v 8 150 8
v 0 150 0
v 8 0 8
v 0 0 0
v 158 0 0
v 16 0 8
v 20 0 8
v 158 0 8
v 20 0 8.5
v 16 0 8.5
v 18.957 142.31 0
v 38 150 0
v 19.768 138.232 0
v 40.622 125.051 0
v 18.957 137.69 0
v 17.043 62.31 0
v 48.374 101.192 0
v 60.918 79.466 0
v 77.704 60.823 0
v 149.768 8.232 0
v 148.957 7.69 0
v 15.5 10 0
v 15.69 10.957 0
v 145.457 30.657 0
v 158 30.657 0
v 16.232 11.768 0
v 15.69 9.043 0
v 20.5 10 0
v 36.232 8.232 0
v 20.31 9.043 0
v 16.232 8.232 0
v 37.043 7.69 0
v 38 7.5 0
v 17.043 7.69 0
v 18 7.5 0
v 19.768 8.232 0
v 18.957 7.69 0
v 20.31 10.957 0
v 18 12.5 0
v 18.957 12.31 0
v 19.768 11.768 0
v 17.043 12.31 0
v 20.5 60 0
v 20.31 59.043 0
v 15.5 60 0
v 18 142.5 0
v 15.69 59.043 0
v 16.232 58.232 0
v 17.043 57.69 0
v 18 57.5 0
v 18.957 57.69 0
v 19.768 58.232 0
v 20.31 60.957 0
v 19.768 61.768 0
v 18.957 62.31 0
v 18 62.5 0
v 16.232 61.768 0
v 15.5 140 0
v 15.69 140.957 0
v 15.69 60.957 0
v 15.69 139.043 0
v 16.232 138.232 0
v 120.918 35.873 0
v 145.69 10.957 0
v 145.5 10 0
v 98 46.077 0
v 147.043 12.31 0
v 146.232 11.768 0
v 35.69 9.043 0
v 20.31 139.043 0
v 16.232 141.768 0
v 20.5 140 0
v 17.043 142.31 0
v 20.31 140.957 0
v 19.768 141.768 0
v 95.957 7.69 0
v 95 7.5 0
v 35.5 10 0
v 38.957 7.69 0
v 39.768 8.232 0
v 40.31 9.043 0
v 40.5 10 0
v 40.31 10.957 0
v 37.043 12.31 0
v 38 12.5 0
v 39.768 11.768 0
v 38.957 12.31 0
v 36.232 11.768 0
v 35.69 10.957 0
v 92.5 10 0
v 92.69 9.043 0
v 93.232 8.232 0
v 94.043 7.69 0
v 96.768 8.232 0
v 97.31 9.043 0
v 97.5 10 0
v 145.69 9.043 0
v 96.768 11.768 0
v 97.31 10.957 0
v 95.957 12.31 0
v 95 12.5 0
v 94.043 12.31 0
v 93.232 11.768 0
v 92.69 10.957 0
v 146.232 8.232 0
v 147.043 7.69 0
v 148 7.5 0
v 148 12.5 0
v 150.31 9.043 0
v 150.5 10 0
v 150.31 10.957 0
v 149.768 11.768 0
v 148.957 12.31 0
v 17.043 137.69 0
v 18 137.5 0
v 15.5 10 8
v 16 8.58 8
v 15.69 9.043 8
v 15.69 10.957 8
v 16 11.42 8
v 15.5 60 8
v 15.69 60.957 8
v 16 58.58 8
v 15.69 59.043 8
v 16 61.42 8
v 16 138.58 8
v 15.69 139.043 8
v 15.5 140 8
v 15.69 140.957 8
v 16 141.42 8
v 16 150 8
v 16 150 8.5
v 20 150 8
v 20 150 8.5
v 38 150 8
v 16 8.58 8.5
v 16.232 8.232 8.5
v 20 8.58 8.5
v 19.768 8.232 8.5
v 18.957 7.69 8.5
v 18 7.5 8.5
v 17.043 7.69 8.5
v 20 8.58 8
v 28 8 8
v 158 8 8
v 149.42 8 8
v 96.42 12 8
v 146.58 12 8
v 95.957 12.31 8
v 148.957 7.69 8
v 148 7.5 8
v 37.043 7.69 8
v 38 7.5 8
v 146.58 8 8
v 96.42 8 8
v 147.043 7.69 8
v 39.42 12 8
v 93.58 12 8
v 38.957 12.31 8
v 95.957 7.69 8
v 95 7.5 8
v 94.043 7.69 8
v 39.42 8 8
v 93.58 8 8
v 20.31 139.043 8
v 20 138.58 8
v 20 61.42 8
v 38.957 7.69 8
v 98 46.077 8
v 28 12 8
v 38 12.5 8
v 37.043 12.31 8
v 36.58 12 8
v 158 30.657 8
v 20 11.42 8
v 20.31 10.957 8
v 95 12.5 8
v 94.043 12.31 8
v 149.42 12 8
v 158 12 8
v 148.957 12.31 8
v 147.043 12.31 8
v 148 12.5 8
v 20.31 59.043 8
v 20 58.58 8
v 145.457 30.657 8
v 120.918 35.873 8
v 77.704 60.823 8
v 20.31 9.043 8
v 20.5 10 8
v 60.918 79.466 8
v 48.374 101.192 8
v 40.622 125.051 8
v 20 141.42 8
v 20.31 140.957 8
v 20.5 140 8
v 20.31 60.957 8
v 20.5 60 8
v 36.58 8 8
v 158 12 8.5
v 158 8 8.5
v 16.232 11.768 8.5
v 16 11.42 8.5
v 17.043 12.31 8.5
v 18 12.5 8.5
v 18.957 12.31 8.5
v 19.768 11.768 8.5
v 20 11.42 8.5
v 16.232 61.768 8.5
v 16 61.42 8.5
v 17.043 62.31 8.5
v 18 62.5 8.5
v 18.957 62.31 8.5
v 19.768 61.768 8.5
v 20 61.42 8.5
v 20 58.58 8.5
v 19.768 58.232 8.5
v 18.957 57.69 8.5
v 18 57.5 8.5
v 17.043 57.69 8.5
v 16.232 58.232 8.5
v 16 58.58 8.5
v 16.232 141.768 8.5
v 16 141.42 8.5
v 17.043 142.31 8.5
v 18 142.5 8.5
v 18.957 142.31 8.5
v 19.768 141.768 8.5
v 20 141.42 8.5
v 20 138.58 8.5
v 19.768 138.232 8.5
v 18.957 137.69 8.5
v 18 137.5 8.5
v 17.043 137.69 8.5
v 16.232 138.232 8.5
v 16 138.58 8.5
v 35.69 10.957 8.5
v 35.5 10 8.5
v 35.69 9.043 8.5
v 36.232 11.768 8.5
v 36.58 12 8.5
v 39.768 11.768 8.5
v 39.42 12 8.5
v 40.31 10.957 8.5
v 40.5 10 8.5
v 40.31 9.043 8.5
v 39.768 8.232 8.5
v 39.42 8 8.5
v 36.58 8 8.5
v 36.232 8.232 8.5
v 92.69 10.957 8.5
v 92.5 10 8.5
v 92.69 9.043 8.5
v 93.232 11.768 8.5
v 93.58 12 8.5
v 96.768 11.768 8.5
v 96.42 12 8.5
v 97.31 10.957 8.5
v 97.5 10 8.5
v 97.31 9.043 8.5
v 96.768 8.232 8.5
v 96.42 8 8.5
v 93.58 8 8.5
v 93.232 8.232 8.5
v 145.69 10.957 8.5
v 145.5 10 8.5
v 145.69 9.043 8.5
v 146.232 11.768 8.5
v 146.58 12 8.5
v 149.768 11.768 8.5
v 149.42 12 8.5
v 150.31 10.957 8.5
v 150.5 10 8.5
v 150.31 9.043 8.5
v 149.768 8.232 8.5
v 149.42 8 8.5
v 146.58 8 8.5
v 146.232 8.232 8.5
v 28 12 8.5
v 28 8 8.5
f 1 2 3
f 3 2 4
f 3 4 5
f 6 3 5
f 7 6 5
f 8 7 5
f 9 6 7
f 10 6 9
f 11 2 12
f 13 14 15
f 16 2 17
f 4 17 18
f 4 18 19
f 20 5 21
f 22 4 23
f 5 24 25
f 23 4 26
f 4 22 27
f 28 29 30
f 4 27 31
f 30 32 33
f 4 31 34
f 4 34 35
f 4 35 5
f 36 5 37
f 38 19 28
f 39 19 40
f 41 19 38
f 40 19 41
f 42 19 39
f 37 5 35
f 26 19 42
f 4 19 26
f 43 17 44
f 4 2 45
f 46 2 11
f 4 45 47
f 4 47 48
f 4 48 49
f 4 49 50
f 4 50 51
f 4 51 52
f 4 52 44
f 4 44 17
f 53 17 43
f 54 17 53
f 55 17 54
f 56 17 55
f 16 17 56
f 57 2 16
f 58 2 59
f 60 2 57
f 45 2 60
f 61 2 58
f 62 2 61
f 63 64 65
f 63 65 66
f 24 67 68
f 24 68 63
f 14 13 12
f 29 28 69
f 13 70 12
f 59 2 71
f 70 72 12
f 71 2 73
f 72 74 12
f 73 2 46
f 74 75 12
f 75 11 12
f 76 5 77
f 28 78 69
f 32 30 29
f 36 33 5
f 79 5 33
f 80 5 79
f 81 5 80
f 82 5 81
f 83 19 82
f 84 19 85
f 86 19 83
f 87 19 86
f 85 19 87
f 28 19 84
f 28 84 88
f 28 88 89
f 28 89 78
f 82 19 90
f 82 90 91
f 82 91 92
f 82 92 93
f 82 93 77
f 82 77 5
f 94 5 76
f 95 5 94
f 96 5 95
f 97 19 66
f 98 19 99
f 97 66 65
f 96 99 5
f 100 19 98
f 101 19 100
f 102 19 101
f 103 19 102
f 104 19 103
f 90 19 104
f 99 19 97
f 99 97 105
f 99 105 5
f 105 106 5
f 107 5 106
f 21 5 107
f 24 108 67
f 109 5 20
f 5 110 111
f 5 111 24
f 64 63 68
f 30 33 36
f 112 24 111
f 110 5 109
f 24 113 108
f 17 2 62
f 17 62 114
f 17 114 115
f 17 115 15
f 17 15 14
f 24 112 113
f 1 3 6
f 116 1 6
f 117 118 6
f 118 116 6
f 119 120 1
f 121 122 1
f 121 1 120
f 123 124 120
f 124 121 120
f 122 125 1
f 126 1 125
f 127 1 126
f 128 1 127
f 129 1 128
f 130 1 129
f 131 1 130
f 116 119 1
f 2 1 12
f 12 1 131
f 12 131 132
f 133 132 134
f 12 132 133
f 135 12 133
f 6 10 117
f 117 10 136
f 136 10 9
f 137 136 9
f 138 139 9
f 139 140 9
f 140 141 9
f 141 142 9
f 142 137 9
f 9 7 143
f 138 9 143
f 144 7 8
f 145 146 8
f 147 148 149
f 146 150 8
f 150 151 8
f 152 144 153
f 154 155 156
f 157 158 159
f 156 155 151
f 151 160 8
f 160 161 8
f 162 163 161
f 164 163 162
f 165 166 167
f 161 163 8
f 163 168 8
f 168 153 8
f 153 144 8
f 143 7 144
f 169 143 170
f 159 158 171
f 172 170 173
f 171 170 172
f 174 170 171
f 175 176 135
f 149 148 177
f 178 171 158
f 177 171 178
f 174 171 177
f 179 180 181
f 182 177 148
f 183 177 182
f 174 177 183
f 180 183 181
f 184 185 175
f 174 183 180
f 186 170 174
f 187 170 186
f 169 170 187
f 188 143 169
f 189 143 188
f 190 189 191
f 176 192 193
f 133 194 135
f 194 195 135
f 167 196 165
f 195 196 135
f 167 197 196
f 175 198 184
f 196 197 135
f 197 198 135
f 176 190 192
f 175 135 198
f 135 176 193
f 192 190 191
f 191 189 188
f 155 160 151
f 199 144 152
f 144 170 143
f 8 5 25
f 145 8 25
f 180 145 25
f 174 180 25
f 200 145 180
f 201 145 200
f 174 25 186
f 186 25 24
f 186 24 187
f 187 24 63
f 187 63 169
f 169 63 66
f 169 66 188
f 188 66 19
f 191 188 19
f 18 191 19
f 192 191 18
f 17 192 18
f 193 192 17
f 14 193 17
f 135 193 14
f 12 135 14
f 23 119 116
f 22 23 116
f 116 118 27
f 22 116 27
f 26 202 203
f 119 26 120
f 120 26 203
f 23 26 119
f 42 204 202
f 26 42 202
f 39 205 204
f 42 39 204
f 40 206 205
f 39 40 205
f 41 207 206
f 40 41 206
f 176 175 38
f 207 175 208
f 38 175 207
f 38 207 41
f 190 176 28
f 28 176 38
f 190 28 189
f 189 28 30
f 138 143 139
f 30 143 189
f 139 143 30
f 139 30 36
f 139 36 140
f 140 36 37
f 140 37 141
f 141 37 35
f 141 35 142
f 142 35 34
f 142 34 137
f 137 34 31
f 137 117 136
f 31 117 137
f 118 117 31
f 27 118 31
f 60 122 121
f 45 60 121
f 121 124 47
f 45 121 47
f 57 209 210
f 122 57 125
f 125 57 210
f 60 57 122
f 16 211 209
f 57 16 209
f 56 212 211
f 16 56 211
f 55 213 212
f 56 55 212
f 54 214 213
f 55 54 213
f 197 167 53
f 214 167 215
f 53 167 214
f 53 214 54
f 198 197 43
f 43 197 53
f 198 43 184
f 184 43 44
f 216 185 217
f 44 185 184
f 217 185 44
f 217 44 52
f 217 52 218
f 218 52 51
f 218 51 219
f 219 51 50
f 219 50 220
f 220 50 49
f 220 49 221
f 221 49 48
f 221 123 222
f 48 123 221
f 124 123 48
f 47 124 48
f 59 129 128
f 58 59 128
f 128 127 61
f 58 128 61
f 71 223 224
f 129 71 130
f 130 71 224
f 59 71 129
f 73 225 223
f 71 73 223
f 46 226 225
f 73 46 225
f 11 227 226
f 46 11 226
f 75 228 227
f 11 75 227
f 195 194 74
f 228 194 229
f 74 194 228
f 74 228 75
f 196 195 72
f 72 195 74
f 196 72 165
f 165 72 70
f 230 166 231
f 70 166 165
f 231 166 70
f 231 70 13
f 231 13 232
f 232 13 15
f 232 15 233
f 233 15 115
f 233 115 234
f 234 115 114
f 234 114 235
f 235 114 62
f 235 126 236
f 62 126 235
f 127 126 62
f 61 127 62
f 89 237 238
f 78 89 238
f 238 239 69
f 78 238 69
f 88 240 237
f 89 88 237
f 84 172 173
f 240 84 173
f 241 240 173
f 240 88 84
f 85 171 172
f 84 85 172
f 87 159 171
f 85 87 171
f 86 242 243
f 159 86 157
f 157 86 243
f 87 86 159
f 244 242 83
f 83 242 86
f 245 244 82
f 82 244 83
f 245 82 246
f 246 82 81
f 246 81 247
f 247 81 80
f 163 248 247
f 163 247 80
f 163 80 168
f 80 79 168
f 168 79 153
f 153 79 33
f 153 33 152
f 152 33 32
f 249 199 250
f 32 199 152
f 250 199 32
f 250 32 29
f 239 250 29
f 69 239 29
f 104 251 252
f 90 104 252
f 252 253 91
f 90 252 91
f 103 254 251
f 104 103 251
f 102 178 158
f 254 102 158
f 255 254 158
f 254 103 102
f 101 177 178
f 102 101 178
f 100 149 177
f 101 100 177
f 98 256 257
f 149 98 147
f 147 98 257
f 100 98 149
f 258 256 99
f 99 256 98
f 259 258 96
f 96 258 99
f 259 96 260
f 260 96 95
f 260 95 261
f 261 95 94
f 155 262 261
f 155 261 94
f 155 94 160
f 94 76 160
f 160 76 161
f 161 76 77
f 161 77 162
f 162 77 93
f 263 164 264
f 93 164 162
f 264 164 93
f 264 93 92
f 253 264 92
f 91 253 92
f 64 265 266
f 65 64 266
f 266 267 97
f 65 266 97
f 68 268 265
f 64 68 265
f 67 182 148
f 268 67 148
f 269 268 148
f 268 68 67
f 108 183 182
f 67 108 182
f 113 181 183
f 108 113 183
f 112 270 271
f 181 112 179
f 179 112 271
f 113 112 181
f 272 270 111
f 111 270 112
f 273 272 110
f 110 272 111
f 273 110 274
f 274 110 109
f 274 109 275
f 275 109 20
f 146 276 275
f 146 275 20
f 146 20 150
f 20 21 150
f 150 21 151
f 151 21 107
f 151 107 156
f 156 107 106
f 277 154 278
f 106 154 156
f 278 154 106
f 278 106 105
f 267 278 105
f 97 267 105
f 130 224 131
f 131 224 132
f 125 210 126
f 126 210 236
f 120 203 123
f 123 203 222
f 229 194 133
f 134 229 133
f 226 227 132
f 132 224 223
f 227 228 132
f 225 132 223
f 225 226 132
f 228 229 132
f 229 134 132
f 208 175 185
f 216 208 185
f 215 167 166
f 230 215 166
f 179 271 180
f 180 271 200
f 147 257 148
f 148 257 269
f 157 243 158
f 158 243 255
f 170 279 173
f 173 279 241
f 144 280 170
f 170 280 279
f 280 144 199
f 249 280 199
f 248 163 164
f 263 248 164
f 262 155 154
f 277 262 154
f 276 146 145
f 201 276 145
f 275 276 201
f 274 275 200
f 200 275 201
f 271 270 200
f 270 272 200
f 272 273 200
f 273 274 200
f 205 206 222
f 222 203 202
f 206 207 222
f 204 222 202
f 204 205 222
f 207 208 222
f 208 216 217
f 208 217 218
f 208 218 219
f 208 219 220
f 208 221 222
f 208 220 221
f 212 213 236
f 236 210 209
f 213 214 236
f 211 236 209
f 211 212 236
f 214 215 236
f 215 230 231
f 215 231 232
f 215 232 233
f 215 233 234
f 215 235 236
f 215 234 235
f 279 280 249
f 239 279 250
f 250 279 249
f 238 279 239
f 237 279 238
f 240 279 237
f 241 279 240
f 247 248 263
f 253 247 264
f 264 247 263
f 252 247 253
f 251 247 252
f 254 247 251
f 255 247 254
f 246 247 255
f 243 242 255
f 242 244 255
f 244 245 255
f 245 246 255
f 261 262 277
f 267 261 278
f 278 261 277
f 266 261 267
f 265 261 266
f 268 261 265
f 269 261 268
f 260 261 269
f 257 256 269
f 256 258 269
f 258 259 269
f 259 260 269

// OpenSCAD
offsetx =8;
offsety  =0;
width_ridge=4;
height = 150;
width = 150+offsetx;
barwidth = 20;
thickness=8;
spacing_bars = 50;
largeCircle = 120.0;
holeSize=5;

holes = [
	[barwidth /2,barwidth /2],
	[barwidth+barwidth/2,barwidth /2],
	[width/2+offsetx,barwidth /2],
	[width-offsetx-barwidth/2,barwidth /2],

	[barwidth /2,barwidth /2+spacing_bars],


	[barwidth /2,height-barwidth /2],
];



difference() {
union() {
cube([width,height,thickness],false);
translate([8+offsetx,0,0.5]) {
	cube([width_ridge,height,thickness],false);
}
translate([offsetx + barwidth,offsety+barwidth/2-width_ridge/2,0.5]) {
	cube([width - barwidth - offsetx,width_ridge,thickness],false);
}


}

translate([0,0,-0.1]) {

	translate([width,height,0]) {
		cylinder(h=thickness+2,r=largeCircle, center = false, $fs=6);
	}

	for(i = holes) {
		translate([offsetx + i[0],i[1],0])
			cylinder(h=thickness+2,r=holeSize/2, center = false, $fs=1);
	}
	
}
rotate([0,-45,0])
cube([30,height,20],false);

}
